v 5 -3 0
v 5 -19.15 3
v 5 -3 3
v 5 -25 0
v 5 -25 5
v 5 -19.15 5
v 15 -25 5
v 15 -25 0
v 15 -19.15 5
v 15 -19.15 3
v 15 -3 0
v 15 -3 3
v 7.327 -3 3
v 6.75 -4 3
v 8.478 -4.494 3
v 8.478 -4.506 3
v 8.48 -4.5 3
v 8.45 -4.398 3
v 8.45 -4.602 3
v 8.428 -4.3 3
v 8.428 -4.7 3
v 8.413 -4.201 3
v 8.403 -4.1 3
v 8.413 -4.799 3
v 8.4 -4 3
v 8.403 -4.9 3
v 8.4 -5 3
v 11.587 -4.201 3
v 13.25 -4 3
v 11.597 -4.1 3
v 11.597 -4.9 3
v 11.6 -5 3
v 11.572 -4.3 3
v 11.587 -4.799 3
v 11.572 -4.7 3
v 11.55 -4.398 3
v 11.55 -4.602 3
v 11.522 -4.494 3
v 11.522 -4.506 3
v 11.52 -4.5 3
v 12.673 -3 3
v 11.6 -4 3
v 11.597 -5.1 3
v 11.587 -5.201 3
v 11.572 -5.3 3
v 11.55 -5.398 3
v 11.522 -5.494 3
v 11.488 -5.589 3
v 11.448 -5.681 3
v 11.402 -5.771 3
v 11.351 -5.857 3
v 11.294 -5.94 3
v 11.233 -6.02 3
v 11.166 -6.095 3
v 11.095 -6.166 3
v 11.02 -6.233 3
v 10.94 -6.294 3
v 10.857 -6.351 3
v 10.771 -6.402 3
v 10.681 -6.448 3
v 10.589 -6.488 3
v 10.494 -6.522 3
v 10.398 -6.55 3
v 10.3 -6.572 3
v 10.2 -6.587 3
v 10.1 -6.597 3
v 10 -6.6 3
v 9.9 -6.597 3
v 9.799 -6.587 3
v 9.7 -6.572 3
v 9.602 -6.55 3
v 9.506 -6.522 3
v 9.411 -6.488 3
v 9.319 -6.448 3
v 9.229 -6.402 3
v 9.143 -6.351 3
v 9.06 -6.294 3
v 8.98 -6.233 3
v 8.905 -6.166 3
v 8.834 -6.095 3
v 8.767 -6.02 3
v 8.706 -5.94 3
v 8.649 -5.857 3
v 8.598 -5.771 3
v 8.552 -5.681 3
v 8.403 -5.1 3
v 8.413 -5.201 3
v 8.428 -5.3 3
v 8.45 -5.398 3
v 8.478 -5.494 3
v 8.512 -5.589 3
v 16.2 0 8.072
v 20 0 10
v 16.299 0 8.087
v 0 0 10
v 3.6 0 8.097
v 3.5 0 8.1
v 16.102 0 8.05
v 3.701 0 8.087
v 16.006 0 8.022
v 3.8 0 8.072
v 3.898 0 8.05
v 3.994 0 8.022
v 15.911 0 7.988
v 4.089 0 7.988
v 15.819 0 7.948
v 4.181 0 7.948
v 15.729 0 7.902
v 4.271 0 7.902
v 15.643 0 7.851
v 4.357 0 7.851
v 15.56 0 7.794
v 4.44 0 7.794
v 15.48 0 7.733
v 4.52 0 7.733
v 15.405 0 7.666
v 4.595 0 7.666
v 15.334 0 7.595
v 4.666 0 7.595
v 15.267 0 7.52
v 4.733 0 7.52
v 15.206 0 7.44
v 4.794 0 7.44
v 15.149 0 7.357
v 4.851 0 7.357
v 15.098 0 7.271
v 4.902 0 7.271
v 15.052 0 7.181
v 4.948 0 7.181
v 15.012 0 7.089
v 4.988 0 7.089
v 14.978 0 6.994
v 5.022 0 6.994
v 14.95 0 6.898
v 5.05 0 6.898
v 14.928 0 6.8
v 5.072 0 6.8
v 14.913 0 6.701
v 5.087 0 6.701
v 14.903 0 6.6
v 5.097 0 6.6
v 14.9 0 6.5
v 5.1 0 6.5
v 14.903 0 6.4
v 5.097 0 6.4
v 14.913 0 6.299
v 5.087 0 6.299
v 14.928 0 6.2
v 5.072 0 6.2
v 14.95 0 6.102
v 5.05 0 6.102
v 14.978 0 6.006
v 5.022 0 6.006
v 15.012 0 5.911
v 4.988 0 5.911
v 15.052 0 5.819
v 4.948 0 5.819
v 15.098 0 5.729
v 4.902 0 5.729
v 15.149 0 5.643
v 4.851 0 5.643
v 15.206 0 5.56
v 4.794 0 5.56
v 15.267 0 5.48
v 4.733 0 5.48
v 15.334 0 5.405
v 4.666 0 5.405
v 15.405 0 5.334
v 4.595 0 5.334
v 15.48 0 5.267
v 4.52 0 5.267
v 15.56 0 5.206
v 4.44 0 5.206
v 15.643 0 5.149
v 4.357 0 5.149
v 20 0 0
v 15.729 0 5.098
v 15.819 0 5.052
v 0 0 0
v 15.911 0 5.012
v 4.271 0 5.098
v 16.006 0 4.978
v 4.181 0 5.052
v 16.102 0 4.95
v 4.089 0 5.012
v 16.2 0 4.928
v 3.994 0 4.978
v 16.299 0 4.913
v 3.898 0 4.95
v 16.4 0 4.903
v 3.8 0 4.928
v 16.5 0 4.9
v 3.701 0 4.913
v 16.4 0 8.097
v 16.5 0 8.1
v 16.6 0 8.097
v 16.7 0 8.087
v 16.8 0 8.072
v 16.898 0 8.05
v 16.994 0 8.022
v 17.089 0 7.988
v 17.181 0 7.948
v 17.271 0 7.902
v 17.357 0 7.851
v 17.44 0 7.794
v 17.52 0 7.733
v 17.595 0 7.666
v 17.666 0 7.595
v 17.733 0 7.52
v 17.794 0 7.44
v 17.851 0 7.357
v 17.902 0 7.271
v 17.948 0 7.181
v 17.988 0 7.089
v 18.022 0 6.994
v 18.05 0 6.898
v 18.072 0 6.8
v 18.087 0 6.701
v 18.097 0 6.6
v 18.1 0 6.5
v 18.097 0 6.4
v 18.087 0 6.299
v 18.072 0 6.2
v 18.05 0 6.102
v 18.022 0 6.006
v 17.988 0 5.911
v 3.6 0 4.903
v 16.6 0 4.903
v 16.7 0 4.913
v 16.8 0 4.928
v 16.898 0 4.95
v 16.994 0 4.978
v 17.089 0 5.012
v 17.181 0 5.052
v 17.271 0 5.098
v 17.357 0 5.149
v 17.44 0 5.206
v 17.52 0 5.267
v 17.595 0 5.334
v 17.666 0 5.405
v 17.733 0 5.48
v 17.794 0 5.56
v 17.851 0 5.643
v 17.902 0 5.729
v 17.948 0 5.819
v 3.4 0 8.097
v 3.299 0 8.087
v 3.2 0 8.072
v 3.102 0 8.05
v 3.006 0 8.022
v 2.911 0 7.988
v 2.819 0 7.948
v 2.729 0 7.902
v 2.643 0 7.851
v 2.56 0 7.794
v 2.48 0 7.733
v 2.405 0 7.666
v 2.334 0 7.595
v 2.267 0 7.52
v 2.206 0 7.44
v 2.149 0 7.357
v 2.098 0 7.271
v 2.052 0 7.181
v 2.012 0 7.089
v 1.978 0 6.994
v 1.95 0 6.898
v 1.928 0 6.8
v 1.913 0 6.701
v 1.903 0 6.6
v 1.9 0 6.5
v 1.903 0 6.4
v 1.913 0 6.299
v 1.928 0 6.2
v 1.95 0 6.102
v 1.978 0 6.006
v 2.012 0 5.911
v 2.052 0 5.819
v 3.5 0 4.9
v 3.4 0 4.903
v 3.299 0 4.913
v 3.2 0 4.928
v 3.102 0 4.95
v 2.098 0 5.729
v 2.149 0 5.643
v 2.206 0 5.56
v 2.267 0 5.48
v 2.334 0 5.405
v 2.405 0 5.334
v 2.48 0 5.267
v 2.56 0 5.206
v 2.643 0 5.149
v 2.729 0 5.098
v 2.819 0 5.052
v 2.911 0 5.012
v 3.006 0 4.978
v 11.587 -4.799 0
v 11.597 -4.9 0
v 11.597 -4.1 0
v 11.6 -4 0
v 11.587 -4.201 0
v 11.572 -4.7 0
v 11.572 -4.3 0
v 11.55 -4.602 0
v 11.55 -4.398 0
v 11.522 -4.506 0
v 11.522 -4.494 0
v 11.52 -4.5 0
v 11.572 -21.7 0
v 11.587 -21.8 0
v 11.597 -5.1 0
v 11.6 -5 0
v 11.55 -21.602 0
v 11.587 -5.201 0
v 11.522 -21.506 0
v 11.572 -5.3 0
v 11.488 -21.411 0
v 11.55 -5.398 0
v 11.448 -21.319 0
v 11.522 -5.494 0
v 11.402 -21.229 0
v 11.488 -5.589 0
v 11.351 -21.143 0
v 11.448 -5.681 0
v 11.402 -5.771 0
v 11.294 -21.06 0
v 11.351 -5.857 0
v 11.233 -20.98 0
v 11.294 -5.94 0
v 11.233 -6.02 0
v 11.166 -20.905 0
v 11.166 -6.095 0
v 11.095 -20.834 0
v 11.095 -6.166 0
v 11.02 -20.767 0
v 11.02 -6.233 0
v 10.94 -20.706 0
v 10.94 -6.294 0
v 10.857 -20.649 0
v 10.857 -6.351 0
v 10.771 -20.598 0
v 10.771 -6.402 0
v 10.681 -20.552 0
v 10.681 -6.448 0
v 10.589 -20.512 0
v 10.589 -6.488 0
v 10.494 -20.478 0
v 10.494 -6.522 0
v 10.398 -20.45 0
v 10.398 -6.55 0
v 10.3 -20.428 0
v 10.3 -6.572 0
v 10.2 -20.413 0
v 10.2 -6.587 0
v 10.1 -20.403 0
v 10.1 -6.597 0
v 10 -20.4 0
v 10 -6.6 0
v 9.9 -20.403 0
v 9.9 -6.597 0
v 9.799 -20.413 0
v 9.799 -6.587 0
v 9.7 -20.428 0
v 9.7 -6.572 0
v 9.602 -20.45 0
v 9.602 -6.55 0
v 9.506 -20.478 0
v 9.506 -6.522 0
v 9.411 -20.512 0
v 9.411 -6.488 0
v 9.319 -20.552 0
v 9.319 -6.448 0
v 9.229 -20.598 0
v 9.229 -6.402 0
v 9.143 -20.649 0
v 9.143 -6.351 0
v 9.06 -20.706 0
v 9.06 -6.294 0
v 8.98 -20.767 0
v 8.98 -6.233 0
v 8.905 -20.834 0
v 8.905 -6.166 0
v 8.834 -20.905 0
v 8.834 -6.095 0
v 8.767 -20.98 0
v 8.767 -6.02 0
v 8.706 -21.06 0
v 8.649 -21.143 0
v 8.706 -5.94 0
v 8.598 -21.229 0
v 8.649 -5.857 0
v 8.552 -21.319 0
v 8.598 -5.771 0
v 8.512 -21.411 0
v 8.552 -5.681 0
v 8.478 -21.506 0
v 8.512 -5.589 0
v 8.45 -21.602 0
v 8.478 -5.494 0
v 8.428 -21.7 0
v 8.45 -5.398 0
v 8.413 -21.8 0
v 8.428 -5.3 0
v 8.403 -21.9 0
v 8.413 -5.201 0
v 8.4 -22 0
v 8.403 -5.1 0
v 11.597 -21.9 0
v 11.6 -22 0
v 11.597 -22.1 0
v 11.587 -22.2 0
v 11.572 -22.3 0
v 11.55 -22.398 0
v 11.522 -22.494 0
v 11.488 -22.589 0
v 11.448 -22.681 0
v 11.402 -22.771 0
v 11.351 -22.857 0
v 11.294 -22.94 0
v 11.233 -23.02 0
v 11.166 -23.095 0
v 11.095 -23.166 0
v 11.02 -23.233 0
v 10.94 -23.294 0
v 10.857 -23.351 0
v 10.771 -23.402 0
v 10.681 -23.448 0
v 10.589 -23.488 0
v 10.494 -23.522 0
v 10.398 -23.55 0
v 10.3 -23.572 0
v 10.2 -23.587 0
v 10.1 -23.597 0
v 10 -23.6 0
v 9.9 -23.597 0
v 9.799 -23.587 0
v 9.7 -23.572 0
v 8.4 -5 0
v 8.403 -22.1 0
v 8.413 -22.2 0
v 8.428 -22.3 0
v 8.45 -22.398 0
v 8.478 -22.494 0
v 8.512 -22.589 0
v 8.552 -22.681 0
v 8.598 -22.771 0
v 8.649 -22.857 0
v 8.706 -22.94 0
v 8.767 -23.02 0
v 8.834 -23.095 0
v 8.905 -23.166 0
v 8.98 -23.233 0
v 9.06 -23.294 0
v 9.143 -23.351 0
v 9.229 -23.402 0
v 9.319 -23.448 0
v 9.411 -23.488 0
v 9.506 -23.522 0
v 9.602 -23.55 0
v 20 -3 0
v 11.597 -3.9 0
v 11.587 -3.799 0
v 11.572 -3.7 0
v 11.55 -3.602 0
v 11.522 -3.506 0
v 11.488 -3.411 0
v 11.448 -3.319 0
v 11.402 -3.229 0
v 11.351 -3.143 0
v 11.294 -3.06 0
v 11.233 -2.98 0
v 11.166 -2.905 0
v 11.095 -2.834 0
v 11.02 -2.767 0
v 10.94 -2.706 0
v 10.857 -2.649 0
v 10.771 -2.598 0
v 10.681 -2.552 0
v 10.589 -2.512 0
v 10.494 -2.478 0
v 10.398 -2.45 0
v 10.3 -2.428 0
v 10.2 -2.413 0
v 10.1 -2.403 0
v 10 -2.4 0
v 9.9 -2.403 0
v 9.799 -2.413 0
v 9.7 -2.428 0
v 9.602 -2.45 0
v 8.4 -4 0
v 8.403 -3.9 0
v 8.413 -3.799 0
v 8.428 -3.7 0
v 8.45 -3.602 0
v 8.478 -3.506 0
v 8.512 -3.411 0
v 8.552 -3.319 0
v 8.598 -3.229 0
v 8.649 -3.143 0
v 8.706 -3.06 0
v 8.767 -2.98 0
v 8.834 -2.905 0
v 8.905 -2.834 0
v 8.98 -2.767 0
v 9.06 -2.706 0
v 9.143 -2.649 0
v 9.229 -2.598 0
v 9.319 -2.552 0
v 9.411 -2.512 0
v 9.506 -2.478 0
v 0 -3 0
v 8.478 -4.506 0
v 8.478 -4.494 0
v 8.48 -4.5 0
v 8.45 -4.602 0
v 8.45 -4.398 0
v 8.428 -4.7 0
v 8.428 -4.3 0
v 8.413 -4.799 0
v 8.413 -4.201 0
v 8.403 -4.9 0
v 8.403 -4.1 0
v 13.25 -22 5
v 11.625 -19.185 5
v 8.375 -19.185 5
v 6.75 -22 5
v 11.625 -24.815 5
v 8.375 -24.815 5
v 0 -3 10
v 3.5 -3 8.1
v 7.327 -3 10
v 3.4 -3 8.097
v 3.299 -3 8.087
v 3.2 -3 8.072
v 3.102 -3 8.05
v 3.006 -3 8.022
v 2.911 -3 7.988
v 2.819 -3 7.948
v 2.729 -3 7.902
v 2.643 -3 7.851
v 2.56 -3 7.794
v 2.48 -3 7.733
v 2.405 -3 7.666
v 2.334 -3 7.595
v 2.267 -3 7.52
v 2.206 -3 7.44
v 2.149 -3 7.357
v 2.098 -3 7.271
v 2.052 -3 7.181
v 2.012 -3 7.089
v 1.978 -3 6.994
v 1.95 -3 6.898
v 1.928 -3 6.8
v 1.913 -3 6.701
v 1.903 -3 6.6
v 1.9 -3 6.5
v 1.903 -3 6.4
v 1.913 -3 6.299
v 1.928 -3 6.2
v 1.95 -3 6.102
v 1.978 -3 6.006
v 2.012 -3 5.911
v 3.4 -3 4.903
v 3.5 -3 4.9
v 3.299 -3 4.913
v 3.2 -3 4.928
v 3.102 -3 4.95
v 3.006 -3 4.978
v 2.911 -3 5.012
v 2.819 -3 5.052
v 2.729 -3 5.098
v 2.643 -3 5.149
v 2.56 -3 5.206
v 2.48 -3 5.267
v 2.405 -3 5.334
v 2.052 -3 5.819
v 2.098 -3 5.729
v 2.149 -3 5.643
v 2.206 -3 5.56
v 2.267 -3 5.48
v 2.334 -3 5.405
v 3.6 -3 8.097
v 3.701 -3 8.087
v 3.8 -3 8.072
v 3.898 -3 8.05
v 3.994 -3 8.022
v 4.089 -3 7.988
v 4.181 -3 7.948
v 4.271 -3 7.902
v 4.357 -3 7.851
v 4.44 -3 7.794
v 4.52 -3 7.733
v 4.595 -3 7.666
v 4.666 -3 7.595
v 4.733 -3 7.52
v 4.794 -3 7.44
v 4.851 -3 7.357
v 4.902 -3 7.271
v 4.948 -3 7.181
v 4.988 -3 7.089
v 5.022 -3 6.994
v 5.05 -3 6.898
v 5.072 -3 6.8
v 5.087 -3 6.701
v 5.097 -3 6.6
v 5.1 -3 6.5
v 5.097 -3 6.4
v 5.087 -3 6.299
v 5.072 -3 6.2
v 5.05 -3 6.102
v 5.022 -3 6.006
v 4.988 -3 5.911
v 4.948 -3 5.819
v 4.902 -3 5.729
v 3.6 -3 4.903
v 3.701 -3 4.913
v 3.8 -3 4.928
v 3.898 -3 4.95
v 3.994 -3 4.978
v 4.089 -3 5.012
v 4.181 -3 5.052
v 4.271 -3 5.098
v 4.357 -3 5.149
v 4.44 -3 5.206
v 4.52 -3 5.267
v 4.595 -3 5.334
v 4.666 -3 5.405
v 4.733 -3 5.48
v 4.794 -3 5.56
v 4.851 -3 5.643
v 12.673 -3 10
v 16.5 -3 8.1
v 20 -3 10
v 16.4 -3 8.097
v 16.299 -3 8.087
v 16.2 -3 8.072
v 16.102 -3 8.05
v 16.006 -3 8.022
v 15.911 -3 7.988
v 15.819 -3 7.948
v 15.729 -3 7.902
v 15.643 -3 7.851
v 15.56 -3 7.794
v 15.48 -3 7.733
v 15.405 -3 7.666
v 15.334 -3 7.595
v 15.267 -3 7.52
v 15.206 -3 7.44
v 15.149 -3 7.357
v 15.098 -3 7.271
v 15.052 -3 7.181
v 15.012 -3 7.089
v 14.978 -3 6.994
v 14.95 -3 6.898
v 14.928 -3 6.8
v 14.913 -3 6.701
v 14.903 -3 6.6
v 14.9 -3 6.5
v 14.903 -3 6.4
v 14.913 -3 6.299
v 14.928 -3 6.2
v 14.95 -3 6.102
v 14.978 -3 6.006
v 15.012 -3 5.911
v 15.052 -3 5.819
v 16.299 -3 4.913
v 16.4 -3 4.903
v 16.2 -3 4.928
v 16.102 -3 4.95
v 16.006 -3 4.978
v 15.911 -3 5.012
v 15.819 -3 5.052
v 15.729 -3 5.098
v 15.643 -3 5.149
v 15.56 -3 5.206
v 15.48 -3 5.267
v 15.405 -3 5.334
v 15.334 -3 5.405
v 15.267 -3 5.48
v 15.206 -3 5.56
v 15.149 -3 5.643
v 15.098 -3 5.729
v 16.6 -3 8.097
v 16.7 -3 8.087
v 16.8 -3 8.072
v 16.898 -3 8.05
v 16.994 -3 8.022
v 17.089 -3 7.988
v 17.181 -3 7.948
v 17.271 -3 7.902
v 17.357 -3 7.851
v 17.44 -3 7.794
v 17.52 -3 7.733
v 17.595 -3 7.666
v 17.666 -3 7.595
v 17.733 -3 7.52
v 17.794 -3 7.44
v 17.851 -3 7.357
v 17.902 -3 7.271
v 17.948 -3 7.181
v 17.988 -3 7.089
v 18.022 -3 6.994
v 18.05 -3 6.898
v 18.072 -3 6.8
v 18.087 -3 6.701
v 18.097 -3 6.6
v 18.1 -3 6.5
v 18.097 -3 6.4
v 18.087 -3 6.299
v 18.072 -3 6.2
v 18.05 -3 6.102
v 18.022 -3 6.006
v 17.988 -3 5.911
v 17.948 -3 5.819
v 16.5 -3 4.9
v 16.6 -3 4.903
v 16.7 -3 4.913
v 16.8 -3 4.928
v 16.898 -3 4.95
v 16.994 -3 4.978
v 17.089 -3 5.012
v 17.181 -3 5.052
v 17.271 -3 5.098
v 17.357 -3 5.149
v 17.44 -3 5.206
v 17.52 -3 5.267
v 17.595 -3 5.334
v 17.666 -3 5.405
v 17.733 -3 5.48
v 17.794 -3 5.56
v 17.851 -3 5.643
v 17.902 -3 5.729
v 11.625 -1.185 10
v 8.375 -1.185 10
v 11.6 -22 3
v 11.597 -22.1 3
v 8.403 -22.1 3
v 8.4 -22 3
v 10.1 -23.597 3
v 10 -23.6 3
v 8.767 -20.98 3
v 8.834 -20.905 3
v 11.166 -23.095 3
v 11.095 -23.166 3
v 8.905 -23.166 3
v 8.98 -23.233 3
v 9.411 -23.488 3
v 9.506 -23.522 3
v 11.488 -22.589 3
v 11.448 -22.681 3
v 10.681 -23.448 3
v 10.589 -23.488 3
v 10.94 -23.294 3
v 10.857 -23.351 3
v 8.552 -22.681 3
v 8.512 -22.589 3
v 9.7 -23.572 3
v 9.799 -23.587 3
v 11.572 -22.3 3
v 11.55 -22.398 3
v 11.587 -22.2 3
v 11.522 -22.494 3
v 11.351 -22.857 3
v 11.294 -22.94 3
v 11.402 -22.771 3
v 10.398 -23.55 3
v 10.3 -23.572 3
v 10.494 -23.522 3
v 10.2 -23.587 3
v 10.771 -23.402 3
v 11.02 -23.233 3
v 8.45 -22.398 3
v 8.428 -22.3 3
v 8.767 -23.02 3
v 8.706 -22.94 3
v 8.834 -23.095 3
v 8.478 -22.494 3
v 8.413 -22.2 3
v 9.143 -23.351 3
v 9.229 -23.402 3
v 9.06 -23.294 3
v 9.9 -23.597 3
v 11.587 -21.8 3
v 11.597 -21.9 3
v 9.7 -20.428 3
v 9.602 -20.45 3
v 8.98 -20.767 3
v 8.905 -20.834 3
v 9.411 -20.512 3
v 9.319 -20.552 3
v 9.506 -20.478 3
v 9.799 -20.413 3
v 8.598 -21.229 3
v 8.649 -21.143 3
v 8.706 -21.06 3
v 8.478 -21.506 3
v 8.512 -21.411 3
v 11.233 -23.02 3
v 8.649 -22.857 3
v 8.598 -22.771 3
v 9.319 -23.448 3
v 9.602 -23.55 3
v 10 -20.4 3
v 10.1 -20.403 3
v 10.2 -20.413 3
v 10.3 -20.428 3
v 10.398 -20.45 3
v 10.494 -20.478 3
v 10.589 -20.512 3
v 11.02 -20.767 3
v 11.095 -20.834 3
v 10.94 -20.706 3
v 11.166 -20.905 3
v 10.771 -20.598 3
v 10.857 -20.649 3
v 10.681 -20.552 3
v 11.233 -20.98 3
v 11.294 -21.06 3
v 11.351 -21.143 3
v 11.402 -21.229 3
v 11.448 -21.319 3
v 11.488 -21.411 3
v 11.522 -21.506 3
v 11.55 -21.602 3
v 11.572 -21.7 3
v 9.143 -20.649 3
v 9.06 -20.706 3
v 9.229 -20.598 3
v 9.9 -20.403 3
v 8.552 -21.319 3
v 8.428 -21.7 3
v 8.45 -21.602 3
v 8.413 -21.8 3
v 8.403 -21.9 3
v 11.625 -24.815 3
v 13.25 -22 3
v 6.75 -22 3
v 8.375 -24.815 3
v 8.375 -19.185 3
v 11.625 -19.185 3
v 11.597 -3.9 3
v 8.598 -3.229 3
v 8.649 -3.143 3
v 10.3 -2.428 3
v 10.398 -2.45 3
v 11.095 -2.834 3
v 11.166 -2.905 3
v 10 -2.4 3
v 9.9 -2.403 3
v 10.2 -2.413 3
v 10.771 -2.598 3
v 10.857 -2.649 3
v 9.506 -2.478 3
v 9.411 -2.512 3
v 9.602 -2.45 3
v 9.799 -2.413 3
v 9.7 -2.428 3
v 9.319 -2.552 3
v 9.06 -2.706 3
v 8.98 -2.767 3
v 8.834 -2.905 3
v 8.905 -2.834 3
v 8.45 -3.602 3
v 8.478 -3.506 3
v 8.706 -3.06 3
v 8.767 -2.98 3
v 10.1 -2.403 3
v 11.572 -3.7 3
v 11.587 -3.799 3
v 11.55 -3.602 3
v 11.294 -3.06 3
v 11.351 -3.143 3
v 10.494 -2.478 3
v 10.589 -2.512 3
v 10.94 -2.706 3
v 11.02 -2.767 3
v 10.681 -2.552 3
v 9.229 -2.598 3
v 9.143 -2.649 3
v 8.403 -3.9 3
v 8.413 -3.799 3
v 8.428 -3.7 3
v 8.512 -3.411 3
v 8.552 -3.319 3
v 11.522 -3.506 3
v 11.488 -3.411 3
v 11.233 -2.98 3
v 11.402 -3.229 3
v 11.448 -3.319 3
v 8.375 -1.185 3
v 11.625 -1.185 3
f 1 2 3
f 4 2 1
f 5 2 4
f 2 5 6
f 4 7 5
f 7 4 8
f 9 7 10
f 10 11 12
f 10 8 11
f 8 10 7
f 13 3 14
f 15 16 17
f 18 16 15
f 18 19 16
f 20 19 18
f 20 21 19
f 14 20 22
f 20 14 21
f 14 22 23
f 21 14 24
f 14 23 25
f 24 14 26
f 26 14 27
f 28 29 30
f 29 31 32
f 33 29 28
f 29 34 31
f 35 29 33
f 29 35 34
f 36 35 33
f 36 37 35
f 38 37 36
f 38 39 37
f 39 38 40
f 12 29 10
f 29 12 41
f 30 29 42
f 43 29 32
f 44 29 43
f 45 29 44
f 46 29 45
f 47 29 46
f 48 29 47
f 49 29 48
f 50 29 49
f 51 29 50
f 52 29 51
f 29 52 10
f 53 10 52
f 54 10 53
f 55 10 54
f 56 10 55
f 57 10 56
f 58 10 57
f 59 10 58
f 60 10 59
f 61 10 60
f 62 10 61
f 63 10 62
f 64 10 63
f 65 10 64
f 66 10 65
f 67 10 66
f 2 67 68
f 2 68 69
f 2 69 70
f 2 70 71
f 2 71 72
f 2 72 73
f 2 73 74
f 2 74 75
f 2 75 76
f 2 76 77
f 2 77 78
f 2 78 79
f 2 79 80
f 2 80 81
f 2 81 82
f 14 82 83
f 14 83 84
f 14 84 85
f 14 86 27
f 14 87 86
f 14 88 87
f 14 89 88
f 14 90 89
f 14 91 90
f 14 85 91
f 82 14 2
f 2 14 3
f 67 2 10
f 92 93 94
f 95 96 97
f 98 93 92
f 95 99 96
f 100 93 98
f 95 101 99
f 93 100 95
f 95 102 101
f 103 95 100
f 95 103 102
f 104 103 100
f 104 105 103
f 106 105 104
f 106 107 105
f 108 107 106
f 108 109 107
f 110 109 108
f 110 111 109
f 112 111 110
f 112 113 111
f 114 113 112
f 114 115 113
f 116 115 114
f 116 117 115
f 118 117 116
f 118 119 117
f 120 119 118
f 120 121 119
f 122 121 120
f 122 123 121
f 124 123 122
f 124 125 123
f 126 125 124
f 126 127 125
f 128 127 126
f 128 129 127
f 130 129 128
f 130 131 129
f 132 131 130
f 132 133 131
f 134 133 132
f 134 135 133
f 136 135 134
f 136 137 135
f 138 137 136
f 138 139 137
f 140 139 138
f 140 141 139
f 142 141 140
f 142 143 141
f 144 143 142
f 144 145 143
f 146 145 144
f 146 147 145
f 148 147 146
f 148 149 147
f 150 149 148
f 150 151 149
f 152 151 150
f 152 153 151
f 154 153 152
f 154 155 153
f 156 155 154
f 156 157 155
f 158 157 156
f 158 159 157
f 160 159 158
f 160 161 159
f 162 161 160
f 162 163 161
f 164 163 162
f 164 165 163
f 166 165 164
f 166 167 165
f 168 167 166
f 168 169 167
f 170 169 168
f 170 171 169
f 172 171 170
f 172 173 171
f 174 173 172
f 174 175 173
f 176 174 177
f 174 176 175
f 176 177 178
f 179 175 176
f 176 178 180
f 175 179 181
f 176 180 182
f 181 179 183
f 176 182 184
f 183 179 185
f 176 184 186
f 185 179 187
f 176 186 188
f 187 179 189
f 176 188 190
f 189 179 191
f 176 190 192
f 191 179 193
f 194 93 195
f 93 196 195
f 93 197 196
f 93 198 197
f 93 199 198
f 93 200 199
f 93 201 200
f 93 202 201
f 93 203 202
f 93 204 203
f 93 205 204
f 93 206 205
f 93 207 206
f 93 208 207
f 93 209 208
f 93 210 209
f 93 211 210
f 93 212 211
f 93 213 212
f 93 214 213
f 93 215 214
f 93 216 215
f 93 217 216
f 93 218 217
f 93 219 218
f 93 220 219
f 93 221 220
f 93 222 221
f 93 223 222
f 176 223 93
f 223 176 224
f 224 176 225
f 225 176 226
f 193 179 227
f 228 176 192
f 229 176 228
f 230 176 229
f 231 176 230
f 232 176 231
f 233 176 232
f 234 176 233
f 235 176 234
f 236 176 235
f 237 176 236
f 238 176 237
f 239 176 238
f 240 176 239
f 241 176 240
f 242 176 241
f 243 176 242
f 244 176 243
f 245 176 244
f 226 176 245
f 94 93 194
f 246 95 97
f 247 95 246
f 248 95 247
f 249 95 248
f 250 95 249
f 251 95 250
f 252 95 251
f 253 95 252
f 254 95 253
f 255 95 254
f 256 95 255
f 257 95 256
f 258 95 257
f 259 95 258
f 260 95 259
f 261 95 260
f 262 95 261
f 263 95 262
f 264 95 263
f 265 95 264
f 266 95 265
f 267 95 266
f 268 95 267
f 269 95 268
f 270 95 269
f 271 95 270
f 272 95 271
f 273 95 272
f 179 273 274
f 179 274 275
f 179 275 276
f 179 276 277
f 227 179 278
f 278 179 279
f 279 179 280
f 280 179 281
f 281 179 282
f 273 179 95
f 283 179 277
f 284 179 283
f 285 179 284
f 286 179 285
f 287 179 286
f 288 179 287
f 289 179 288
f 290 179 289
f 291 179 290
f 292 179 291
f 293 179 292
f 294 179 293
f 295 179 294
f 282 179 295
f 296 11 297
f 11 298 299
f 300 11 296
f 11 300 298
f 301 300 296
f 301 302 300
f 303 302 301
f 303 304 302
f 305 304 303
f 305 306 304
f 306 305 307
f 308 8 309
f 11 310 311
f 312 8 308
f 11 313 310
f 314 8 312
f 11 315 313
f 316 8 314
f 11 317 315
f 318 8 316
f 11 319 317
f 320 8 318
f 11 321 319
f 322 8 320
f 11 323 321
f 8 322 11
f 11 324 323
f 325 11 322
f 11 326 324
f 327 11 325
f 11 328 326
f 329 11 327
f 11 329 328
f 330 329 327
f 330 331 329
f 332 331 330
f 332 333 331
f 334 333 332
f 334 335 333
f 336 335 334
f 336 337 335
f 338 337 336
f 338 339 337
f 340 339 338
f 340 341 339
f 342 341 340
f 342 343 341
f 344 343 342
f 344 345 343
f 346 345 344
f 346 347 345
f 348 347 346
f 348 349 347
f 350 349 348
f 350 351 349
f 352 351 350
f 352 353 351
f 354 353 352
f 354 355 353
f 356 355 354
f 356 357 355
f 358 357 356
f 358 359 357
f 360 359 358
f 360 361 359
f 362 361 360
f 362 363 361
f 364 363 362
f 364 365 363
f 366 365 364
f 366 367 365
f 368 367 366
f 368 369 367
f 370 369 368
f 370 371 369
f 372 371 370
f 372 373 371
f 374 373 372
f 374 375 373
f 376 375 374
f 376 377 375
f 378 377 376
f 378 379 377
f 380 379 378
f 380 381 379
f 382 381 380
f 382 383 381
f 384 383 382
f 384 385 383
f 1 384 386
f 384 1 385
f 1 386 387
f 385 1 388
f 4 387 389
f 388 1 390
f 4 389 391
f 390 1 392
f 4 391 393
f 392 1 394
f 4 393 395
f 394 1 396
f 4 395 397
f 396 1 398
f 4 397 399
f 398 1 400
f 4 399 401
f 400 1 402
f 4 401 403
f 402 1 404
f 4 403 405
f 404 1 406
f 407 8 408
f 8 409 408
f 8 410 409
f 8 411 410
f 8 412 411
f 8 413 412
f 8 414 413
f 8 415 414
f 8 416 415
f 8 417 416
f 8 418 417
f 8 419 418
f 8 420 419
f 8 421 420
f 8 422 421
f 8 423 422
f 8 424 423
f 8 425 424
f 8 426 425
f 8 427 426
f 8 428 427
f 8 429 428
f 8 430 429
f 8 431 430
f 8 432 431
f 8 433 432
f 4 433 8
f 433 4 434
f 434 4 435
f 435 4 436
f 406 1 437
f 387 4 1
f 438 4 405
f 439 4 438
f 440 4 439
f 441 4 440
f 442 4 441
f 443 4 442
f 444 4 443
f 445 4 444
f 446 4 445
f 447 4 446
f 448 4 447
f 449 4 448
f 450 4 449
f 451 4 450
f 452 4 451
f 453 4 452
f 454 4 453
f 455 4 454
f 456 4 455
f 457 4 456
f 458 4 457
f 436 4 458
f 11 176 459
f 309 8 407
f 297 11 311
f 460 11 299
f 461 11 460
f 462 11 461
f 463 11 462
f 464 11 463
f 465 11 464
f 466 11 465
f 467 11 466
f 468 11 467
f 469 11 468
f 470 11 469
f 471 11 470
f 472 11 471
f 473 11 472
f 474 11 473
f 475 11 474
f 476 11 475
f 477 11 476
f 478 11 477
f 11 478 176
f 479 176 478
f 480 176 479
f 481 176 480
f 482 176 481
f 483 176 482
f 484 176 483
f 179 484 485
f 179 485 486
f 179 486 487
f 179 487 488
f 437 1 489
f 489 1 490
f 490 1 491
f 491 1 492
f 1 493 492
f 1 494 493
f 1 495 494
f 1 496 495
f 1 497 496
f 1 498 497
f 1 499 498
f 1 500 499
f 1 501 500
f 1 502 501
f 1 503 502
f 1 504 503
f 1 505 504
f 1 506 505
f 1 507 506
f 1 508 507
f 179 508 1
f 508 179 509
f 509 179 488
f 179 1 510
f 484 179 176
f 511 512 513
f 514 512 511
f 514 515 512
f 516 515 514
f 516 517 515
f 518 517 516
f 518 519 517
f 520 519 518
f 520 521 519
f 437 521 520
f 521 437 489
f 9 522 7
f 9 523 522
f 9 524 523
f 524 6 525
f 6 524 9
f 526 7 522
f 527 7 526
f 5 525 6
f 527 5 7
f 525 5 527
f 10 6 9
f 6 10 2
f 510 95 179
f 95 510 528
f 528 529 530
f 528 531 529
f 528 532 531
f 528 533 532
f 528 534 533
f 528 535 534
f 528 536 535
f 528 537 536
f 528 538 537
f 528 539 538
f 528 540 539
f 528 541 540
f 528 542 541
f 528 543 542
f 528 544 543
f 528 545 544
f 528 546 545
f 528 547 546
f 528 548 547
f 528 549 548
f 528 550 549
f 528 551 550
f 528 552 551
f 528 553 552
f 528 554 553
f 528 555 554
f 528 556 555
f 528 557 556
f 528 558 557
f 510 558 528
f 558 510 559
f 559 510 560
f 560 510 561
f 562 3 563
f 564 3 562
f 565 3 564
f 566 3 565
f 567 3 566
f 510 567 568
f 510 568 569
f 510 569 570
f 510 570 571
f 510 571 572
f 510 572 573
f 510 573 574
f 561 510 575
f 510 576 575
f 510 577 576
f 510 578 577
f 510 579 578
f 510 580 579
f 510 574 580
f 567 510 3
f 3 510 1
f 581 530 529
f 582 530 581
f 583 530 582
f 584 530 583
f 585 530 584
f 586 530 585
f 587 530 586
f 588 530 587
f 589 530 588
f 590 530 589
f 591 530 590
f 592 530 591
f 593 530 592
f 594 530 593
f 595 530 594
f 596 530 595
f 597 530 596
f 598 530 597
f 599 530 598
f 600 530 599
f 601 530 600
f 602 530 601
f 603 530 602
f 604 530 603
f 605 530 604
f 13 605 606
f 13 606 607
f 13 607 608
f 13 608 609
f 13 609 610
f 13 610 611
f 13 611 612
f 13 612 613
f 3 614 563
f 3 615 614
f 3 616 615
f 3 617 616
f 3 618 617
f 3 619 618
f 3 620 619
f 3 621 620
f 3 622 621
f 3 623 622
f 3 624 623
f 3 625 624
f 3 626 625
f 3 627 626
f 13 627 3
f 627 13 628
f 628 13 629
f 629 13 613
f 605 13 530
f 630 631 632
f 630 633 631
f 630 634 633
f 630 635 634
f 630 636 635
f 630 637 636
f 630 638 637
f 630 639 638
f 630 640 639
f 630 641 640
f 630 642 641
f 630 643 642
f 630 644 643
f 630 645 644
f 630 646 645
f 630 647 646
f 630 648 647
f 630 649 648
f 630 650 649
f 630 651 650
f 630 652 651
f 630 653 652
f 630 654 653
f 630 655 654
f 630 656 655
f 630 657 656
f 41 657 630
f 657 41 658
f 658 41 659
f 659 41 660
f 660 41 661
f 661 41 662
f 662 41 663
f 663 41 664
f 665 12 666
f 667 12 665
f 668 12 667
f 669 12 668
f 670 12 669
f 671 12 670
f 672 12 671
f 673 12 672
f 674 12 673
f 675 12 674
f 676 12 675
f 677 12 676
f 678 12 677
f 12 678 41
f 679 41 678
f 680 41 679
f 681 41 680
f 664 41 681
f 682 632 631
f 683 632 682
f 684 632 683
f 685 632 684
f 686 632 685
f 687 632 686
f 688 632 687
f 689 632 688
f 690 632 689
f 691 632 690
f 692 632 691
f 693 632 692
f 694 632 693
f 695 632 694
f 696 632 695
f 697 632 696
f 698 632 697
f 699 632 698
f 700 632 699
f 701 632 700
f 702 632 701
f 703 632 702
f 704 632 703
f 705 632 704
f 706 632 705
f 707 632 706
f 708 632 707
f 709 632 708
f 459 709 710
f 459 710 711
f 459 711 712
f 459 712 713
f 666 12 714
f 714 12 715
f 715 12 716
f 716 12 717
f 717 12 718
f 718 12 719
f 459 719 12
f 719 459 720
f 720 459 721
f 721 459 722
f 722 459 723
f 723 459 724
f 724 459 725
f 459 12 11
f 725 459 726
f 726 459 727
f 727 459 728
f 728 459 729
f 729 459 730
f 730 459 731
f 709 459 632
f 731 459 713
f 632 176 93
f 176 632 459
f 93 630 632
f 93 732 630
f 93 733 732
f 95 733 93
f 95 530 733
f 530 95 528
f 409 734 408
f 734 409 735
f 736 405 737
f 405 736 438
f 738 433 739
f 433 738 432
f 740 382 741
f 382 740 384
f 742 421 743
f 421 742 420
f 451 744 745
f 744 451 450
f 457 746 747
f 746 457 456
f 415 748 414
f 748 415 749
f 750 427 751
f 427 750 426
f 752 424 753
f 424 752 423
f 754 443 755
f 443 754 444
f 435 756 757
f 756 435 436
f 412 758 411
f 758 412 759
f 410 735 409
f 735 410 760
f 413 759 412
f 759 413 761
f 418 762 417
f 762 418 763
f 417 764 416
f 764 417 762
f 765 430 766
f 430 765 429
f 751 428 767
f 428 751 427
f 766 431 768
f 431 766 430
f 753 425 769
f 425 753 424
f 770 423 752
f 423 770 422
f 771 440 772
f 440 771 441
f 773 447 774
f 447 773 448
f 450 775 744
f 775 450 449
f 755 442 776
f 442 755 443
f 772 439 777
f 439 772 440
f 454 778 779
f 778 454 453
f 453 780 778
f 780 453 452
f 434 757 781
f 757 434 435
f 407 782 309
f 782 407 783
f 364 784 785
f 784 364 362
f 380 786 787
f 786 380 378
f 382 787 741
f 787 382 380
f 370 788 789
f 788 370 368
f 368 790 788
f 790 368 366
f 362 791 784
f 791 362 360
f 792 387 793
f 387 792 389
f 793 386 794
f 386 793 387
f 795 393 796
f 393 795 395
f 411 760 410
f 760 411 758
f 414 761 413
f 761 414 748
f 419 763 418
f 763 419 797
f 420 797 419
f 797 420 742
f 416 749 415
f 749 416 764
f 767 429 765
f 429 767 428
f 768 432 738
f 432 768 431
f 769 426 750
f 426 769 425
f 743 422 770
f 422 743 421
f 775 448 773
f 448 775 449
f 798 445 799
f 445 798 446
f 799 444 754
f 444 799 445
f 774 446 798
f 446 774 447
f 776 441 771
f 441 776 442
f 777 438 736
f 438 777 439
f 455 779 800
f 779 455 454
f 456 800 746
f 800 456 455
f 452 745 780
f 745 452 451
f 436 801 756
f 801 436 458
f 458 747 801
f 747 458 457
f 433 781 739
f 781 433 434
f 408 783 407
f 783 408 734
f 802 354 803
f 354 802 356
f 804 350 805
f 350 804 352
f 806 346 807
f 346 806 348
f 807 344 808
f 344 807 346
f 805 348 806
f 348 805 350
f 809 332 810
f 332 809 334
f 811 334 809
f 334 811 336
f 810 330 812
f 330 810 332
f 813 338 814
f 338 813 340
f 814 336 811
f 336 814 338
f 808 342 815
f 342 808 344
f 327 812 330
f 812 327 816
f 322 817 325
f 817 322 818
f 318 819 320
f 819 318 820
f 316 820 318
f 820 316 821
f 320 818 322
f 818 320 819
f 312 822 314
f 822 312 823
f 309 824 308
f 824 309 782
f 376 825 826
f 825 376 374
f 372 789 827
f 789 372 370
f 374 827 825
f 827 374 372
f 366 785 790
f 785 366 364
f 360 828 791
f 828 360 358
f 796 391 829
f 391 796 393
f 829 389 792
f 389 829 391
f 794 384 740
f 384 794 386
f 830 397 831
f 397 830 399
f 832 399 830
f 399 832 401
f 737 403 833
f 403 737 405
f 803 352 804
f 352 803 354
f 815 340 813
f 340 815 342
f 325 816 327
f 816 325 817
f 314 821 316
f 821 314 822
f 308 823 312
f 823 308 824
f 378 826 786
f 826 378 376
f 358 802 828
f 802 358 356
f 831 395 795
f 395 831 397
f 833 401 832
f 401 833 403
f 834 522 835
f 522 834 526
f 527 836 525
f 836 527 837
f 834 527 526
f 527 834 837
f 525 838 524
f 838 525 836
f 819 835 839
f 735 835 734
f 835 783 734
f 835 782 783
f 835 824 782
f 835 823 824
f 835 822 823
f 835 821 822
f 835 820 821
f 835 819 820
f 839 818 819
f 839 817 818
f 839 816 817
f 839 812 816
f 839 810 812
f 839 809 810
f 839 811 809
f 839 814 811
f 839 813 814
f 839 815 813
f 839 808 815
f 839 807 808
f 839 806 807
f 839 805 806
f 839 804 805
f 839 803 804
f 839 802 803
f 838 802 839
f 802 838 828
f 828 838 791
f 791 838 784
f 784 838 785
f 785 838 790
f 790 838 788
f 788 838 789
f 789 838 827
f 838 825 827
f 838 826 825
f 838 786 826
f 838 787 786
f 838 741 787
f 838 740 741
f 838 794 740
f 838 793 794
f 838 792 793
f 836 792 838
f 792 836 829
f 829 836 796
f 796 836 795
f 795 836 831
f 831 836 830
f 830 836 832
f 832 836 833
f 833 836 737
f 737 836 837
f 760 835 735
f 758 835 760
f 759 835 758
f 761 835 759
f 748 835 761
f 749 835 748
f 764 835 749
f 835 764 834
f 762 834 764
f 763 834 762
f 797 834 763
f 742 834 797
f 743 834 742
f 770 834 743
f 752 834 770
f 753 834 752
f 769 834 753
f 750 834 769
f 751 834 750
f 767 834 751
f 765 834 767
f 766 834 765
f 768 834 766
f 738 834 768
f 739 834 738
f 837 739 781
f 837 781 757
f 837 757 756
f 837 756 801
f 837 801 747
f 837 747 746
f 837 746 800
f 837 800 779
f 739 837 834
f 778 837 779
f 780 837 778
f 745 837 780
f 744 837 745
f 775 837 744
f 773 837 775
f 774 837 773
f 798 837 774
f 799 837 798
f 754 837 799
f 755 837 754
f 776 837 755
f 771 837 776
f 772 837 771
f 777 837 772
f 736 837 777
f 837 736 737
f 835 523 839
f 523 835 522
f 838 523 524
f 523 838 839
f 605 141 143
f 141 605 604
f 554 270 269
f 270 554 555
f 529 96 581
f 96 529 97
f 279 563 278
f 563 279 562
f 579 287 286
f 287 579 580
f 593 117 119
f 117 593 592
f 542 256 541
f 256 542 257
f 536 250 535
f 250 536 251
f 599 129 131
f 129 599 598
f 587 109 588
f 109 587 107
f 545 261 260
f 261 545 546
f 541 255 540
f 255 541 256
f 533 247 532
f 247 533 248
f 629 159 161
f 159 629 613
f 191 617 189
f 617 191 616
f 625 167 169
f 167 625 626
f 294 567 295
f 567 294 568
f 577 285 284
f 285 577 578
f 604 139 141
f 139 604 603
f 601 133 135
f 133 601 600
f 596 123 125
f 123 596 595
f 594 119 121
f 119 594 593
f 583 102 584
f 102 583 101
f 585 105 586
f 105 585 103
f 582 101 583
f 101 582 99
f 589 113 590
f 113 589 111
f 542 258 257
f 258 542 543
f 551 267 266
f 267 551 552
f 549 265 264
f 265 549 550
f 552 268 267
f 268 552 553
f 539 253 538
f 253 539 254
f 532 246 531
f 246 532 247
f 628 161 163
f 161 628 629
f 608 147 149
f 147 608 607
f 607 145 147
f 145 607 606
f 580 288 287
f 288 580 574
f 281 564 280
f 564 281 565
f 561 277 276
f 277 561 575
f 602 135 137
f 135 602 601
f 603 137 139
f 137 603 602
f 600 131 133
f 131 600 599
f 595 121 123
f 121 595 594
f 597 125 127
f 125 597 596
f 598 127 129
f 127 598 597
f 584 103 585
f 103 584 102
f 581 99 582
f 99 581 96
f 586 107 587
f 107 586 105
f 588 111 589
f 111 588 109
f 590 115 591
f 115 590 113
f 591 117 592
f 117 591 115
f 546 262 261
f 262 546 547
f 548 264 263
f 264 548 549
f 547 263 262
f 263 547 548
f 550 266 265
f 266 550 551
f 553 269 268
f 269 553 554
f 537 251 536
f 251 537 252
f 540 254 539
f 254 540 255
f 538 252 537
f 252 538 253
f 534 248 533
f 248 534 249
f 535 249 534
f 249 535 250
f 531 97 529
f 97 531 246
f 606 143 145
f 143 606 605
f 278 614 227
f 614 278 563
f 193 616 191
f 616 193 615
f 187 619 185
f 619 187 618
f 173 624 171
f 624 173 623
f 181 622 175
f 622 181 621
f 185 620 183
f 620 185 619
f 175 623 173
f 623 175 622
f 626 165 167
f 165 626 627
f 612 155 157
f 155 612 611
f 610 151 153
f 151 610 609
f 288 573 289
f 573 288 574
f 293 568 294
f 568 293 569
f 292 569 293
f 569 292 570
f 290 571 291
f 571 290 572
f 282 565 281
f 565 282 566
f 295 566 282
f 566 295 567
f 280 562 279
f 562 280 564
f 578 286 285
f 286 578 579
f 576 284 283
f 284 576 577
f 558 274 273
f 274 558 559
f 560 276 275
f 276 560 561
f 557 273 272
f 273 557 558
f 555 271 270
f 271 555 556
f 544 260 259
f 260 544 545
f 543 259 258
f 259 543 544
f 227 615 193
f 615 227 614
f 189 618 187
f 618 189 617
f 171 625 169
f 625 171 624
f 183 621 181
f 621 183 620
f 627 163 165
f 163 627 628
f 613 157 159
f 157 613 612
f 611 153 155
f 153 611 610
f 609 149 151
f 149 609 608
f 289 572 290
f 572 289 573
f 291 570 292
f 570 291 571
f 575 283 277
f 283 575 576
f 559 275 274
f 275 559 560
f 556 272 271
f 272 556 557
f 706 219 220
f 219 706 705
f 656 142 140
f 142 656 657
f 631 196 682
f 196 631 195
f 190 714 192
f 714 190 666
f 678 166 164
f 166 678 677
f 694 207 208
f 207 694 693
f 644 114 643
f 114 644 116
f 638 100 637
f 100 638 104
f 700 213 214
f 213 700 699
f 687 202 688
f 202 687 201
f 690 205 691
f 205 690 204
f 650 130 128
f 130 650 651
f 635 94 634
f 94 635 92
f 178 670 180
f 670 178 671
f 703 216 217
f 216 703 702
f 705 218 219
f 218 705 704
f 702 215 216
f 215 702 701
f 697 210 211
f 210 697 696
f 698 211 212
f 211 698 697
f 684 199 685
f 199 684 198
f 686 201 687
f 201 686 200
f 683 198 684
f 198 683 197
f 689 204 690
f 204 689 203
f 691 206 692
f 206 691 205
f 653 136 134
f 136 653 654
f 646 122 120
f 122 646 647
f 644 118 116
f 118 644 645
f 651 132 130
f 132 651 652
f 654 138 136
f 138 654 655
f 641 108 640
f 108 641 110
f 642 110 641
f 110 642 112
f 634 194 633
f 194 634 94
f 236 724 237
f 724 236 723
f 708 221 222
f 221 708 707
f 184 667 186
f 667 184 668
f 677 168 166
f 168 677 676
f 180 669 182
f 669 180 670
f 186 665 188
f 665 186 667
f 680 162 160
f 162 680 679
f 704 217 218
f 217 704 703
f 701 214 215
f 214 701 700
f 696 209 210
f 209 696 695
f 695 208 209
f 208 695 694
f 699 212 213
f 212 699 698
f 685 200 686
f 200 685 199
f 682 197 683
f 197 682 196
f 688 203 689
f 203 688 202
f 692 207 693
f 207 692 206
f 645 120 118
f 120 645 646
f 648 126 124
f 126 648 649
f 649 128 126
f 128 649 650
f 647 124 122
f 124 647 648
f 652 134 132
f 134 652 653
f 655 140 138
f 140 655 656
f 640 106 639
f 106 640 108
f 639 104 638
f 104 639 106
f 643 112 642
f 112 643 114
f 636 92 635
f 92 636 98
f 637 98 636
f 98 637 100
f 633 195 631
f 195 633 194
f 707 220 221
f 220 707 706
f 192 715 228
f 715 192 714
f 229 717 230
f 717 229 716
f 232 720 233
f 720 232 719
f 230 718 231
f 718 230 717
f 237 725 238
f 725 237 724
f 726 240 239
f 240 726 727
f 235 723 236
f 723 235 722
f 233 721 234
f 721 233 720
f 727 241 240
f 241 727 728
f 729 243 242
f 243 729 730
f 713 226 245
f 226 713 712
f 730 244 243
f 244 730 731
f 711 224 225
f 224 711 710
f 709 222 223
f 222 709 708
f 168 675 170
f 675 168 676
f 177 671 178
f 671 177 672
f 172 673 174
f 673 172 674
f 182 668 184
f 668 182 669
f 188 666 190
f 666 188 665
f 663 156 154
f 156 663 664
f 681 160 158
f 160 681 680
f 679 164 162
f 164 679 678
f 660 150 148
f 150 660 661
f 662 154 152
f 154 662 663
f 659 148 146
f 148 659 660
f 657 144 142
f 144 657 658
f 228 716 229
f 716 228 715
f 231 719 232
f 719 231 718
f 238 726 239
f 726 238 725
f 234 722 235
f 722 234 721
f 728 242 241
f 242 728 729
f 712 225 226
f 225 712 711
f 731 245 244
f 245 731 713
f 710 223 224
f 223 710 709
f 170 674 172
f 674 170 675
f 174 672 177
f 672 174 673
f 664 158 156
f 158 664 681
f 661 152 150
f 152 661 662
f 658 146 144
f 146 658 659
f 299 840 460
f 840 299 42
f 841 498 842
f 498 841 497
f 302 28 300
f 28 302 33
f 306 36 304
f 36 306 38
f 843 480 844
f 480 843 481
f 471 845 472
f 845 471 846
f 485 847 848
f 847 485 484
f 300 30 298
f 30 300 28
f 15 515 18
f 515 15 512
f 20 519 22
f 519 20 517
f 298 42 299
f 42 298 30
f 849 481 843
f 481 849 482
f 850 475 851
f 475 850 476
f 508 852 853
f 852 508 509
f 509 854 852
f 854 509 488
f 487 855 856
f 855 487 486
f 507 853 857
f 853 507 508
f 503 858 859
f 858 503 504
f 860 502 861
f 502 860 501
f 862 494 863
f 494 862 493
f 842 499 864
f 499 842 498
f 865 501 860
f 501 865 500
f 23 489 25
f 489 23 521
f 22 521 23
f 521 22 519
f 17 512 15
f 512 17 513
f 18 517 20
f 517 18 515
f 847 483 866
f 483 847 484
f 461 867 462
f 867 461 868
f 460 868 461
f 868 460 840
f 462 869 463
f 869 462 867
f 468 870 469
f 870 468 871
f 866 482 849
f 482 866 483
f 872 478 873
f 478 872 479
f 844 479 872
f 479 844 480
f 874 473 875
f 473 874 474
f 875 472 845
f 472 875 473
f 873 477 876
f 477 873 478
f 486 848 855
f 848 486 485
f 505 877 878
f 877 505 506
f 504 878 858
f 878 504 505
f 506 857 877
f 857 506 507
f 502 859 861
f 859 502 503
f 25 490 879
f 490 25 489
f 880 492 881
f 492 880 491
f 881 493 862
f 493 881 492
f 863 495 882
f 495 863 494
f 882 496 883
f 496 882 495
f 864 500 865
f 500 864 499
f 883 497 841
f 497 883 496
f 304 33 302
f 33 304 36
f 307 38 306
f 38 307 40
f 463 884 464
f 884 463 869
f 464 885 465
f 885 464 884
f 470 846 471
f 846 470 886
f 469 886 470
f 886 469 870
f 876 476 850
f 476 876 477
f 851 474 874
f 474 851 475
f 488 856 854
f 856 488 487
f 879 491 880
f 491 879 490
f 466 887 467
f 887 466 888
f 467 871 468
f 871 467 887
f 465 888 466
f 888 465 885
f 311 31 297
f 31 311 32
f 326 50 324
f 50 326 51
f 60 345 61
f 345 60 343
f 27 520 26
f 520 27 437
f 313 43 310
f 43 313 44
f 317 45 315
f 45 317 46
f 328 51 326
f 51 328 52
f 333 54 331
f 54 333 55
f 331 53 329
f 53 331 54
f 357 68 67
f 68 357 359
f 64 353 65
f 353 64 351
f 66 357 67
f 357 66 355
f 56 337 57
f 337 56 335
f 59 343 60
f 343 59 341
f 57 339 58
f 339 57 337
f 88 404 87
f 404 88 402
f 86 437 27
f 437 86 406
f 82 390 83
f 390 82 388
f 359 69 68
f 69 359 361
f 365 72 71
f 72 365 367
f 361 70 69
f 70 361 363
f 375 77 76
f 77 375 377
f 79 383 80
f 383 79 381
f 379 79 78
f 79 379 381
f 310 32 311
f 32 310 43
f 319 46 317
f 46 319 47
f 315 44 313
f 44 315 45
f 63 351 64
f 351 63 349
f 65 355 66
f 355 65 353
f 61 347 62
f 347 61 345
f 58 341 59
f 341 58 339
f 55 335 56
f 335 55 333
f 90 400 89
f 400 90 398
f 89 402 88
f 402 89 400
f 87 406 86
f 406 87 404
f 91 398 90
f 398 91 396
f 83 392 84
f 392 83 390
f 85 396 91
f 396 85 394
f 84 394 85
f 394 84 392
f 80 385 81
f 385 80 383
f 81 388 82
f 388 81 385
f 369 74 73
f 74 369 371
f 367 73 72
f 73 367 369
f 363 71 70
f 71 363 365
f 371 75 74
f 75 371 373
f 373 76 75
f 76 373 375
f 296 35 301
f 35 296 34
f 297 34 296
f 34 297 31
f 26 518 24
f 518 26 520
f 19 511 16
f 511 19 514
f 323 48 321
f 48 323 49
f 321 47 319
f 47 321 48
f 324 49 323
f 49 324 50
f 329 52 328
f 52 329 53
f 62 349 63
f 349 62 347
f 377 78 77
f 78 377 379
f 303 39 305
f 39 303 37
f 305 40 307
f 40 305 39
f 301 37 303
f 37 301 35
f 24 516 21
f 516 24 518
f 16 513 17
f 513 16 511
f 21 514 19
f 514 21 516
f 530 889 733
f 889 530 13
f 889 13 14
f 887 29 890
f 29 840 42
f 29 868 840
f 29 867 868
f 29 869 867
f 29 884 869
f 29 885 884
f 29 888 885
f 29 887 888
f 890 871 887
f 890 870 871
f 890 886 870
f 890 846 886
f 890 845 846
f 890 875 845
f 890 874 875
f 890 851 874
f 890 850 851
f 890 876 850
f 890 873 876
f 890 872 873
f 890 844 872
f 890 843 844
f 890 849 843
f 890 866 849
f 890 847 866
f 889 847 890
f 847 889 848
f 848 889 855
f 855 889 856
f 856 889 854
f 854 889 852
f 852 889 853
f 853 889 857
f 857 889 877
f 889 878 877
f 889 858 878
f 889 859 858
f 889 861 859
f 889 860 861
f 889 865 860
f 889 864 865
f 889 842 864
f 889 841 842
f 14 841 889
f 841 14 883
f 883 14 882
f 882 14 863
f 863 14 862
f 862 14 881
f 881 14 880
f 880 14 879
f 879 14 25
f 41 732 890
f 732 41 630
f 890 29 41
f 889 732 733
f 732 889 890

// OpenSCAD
//
//  WifiRobot
//  motor holder
//
//  The Cave, 2019
//  https://thecave.cz
//
//  Licensed under MIT License (see LICENSE file for details)
//

$fn = 100;
$wall = 3;
$width = 20;
$width2 = 10;
$step = 6;
$stepHeight = 7;
$height = 25;
$len = 7;
$offset = $len/2;
$nut=6.5;

rotate([90,0,0])
difference() {
    union() {
        translate([($width-$width2)/2,0,0]) {
            cube([$width2,$wall,$height]);
            translate([0,0,$height-$nut*0.9]) cube([$width2,$wall+2,$nut*0.9]);
        }
        cube([$width,$len+$wall,$wall]);
    }

    translate([10,$wall+$len+1,4]) #rotate([90,0,0]) {
        cylinder(d=3.2,h=20);
        translate([0,1,0]) cylinder(d=3.2,h=20); // some motors have 17mm hole distance instead of 18
        cylinder(d=$nut,h=$len+1,$fn=6);
    }
    
    translate([10,$wall+$len+1,4+18]) #rotate([90,0,0]) {
        cylinder(d=3.2,h=20);
        cylinder(d=$nut,h=$len+1,$fn=6);
    }
    
    translate([($width-$step)/4,$wall+$offset,-16]) {
        #cylinder(d=3.2,h=20);
        translate([0,0,20]) #cylinder(d=6,h=3);
    }
    translate([($width-$step)/4*3+$step,$wall+$offset,-16]) {
        #cylinder(d=3.2,h=20);
        translate([0,0,20]) #cylinder(d=6,h=3);
    }
}
